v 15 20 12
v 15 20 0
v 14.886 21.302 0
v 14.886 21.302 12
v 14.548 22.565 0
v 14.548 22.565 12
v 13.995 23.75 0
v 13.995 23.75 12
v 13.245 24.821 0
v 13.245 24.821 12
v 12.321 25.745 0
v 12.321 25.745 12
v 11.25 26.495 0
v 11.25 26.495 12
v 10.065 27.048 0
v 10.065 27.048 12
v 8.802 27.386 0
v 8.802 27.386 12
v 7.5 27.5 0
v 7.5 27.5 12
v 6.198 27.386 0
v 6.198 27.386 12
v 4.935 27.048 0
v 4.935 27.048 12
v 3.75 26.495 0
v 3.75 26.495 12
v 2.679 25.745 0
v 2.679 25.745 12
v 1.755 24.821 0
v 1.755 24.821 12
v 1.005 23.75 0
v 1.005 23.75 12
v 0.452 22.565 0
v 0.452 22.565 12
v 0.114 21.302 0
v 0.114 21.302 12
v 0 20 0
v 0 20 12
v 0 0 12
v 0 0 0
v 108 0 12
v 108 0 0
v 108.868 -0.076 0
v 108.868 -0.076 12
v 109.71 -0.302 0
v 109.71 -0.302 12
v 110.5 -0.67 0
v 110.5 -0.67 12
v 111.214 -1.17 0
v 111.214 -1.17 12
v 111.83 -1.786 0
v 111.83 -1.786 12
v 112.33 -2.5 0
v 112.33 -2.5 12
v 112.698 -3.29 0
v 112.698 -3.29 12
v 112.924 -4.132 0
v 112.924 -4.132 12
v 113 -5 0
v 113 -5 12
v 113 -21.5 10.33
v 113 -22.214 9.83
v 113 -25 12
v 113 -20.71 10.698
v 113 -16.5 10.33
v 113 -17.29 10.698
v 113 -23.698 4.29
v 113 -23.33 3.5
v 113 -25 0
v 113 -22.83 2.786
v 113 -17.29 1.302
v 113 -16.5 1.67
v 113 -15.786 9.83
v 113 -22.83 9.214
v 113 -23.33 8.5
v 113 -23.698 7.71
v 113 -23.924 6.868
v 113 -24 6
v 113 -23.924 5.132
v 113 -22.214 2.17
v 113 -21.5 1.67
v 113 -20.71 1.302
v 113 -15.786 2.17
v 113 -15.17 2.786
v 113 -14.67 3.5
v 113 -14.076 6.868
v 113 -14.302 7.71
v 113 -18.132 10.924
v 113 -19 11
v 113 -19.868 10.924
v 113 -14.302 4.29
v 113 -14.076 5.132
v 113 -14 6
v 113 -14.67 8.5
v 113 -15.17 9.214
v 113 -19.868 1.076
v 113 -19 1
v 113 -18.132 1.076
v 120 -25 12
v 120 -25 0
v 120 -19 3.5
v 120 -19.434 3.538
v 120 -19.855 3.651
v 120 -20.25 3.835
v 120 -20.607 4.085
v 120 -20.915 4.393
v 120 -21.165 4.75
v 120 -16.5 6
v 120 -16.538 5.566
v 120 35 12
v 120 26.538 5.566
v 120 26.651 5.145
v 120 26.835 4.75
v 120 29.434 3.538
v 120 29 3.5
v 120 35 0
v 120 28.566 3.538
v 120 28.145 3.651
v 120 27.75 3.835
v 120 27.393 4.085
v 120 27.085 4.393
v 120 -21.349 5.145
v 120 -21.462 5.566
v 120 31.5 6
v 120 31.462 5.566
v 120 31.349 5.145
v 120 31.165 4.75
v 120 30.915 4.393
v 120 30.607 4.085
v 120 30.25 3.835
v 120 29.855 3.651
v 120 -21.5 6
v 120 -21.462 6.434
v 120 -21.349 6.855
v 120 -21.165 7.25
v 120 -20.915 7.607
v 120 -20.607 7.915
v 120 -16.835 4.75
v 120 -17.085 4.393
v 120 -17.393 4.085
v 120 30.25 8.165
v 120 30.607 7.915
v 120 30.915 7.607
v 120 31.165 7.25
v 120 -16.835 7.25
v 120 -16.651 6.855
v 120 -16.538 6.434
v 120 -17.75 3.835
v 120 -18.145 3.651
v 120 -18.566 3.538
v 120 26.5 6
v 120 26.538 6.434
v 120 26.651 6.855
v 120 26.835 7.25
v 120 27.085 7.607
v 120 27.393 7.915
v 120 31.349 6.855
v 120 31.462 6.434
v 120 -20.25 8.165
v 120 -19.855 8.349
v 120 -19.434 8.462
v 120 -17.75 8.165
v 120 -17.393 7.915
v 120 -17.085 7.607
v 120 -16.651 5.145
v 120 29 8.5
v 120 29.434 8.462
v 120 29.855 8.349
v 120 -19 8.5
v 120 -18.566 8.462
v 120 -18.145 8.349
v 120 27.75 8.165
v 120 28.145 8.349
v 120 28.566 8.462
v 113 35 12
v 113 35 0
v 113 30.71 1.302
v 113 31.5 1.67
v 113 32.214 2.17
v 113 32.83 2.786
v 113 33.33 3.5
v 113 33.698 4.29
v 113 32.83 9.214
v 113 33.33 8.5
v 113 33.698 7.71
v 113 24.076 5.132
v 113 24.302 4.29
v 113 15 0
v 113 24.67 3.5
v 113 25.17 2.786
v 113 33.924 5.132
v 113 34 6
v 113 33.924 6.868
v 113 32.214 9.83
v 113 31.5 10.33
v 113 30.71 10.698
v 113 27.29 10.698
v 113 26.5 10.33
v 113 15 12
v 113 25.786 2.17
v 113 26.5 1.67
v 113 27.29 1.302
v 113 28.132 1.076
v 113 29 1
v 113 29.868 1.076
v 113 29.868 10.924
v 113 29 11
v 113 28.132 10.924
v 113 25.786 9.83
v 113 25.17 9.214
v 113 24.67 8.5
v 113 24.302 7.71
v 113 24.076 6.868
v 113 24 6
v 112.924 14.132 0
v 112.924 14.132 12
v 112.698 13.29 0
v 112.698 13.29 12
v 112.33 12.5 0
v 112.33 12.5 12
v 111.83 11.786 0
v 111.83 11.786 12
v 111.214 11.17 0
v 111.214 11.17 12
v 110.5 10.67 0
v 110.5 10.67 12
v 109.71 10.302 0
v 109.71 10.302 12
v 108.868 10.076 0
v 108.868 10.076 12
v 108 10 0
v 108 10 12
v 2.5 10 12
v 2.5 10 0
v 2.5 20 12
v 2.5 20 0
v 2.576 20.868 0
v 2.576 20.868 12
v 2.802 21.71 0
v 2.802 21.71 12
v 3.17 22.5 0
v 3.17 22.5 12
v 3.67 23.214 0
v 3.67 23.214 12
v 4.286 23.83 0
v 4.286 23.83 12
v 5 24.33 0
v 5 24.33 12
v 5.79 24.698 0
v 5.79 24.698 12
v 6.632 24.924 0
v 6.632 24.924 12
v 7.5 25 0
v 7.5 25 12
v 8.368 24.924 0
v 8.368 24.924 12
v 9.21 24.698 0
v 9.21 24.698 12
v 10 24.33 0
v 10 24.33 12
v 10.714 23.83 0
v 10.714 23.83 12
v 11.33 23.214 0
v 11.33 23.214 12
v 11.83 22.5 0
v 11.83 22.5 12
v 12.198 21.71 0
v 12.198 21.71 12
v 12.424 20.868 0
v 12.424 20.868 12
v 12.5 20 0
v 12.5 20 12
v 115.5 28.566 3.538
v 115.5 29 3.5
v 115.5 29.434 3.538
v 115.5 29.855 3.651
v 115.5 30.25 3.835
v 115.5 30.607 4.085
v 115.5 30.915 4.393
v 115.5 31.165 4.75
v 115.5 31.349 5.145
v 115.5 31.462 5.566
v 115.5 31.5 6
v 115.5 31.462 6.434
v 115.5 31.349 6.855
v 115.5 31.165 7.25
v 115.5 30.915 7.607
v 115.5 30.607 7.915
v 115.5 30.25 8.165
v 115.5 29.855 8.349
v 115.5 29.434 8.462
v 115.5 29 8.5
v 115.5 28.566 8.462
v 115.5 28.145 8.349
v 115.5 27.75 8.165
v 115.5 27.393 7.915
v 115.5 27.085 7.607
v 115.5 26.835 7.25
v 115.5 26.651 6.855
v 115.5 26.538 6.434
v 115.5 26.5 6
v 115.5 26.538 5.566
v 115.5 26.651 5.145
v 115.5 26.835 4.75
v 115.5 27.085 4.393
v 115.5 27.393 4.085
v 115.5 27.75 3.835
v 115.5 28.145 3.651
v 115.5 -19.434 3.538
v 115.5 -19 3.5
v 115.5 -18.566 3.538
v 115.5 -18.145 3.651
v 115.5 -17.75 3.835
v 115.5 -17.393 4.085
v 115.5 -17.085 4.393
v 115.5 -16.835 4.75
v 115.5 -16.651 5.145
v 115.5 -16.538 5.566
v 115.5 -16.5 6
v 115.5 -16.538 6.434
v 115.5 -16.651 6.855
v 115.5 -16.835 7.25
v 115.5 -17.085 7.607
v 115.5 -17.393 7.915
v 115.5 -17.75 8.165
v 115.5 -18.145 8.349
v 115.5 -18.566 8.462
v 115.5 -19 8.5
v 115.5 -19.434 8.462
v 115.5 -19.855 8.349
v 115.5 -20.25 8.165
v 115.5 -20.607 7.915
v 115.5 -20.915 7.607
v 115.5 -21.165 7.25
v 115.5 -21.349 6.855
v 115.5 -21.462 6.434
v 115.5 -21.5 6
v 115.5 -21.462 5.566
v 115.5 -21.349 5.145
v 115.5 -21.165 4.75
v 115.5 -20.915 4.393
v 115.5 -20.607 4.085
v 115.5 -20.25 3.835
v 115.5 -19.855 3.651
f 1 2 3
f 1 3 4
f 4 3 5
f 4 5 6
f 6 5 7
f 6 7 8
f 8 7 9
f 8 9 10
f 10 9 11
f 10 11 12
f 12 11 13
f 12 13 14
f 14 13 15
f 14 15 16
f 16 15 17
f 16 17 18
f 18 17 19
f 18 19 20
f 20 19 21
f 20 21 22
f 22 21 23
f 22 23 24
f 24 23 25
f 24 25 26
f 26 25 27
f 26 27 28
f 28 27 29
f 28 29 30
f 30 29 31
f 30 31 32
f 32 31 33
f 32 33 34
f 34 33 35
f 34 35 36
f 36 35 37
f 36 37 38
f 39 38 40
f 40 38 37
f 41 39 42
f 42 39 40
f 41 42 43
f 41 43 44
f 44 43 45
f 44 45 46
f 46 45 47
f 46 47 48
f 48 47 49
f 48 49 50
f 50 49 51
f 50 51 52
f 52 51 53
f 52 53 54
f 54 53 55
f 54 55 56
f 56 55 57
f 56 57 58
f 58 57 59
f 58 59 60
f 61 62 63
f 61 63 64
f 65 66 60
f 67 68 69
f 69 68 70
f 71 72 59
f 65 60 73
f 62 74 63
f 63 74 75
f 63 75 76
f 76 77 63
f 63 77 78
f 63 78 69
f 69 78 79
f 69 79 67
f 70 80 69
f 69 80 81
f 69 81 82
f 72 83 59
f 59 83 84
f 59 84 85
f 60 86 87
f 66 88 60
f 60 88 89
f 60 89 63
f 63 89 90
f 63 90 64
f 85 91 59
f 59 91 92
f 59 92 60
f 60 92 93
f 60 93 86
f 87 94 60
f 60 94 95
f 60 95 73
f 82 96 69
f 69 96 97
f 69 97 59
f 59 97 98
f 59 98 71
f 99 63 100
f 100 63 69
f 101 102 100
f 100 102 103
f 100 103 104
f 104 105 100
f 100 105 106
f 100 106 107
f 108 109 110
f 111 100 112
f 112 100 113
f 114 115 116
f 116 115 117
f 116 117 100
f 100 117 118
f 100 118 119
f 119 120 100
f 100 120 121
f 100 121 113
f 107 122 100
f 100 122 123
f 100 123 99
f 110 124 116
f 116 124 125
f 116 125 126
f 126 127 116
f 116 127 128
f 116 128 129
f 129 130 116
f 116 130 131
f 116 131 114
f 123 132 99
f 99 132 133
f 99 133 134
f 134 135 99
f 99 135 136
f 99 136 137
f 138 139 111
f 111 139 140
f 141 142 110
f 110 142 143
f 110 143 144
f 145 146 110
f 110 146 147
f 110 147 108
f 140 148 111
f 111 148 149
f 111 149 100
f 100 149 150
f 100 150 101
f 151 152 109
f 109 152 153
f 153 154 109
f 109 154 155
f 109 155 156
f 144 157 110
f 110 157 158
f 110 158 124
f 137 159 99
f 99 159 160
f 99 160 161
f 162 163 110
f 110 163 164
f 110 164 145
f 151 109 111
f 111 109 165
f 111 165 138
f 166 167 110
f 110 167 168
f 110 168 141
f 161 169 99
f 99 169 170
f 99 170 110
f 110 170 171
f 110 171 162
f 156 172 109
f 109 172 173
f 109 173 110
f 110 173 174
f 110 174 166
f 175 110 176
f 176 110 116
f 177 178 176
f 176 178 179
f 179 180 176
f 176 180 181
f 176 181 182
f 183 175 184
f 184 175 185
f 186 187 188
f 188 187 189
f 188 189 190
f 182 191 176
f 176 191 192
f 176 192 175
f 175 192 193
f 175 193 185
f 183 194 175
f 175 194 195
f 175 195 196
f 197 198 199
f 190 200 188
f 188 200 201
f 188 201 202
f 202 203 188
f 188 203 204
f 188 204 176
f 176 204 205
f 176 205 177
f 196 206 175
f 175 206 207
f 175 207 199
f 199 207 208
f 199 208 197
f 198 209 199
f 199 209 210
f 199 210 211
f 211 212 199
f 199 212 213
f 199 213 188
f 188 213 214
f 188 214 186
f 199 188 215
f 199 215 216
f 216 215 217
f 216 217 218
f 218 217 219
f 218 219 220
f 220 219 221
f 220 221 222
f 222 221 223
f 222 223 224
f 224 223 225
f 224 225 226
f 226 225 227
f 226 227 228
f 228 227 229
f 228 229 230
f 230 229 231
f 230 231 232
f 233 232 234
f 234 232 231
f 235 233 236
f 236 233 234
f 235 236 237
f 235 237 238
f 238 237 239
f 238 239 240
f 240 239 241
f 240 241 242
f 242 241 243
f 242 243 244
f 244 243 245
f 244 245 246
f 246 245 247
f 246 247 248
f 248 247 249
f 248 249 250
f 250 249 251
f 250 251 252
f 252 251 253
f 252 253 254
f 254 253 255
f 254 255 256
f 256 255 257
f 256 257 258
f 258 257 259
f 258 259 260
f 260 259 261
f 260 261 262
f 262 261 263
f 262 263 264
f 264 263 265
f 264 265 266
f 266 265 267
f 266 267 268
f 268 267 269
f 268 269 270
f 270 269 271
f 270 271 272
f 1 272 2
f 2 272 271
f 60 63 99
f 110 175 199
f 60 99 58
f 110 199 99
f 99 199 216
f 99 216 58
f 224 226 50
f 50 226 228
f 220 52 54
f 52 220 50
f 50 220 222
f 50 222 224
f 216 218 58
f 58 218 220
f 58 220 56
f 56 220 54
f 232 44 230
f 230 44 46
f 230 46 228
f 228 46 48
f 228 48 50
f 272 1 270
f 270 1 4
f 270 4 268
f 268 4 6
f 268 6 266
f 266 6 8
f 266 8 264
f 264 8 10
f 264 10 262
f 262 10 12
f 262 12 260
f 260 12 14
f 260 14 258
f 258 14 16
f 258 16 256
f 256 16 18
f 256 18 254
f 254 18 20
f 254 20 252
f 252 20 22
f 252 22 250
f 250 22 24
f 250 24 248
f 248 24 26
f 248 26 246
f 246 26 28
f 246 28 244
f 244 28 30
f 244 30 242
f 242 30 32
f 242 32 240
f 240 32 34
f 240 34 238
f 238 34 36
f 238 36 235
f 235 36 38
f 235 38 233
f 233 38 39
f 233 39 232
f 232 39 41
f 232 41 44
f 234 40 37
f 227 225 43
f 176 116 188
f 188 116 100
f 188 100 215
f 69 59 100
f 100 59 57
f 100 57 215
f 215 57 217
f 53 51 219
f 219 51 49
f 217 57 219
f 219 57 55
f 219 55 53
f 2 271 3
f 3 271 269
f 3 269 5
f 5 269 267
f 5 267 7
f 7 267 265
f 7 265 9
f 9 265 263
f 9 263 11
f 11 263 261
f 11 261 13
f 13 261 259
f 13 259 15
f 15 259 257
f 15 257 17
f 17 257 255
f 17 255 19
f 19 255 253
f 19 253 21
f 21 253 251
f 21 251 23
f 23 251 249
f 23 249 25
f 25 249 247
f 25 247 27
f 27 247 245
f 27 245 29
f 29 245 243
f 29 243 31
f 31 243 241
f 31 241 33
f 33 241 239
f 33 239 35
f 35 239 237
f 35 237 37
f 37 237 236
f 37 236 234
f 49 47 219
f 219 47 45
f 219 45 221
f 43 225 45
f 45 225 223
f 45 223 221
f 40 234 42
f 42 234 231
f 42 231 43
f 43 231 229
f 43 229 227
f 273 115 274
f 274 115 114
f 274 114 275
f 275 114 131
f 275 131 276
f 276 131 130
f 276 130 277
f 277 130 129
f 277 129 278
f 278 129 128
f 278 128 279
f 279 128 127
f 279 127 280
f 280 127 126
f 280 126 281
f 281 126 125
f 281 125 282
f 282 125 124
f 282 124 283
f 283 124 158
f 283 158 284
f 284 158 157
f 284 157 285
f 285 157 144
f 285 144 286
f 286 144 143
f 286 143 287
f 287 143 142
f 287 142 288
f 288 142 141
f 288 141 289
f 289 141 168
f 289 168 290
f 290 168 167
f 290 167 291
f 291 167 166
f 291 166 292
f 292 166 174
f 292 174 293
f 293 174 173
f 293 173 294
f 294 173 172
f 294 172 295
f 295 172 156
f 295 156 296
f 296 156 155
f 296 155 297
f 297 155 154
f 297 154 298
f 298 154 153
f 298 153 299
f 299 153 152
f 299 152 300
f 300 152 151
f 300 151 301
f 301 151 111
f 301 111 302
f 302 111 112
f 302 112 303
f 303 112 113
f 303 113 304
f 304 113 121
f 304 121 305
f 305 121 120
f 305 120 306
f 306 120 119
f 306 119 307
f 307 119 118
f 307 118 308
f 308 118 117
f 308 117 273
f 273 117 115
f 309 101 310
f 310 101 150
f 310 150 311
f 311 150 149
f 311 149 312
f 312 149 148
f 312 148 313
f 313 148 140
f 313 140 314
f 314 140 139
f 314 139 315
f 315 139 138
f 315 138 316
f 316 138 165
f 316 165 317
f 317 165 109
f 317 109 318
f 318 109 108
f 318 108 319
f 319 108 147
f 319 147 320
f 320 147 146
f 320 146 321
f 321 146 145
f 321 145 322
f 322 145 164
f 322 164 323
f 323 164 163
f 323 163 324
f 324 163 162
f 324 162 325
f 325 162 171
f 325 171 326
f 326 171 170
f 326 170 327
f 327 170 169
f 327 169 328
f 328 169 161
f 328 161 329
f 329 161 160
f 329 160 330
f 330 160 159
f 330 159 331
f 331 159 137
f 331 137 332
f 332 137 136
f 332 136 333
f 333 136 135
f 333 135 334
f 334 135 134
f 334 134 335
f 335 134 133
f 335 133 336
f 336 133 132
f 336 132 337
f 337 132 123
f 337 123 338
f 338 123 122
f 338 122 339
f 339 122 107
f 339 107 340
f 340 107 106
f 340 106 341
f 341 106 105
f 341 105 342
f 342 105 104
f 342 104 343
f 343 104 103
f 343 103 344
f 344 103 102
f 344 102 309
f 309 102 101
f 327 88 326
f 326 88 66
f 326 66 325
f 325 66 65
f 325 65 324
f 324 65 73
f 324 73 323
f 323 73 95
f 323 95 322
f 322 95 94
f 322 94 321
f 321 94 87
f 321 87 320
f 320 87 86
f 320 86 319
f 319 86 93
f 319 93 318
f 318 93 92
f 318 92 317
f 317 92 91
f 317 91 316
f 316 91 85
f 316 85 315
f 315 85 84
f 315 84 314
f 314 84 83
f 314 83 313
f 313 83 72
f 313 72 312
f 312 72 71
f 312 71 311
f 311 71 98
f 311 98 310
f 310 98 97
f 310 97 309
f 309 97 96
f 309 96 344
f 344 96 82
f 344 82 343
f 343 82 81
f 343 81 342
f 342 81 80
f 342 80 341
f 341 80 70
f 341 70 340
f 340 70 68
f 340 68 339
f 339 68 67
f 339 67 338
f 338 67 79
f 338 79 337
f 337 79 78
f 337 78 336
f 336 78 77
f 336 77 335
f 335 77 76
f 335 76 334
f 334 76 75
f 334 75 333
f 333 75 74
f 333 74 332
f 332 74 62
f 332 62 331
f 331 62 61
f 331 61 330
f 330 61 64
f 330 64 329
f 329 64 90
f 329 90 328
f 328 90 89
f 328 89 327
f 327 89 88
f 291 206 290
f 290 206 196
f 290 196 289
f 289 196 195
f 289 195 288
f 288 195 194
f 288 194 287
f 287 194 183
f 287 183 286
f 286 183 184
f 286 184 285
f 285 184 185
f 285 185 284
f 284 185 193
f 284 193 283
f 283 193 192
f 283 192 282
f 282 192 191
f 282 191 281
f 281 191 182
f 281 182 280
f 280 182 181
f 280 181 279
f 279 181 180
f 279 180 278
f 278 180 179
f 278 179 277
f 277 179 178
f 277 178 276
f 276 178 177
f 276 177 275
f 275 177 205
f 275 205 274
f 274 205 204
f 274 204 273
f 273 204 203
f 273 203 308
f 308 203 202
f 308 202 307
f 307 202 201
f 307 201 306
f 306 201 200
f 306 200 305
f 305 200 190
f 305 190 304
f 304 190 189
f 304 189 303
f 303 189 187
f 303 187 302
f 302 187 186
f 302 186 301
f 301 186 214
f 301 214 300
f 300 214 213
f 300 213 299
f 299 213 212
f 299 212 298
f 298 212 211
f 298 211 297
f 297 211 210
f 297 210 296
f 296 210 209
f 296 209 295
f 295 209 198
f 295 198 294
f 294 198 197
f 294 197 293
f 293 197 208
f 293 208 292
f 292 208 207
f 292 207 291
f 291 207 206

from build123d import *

# Parameters (mm, degrees)
BOSS_EXTRUDE1_DEPTH = 12
CUT_EXTRUDE2_REACH  = 122
SKETCH3_R           = 2.5
CHAMFER2_SIZE       = 2.5


with BuildPart() as part:
    # Sketch1 → Boss-Extrude1 (new body)
    with BuildSketch(Plane.XY):
        with BuildLine():
            Line((120, 35), (120, 5))
            Line((120, 5), (120, -25))
            Line((120, -25), (113, -25))
            Line((113, -25), (113, -5))
            ThreePointArc((113, -5), (111.535533906, -1.464466094), (108, 0))
            Line((108, 0), (0, 0))
            Line((0, 0), (0, 20))
            ThreePointArc((0, 20), (7.5, 27.5), (15, 20))
            Line((15, 20), (12.5, 20))
            ThreePointArc((12.5, 20), (7.5, 25), (2.5, 20))
            Line((2.5, 20), (2.5, 10))
            Line((2.5, 10), (108, 10))
            ThreePointArc((108, 10), (111.535533906, 11.464466094), (113, 15))
            Line((113, 15), (113, 35))
            Line((113, 35), (120, 35))
        make_face()
    extrude(amount=BOSS_EXTRUDE1_DEPTH)

    # Sketch3 → Cut-Extrude2 (cut, up to next)
    with BuildSketch(Plane(origin=(120, 0, 0), x_dir=(0, 0, -1), z_dir=(1, 0, 0)), mode=Mode.PRIVATE) as cut_extrude2_sk1:
        with Locations((-6, 29)):
            Circle(SKETCH3_R)
    cut_extrude2_tool1 = extrude(cut_extrude2_sk1.sketch, amount=-CUT_EXTRUDE2_REACH, mode=Mode.PRIVATE) & part.part
    add(cut_extrude2_tool1.solids().sort_by_distance((120, 29, 6))[0], mode=Mode.SUBTRACT)
    # Sketch3 → Cut-Extrude2 (cut, up to next)
    with BuildSketch(Plane(origin=(120, 0, 0), x_dir=(0, 0, -1), z_dir=(1, 0, 0)), mode=Mode.PRIVATE) as cut_extrude2_sk2:
        with Locations((-6, -19)):
            Circle(SKETCH3_R)
    cut_extrude2_tool2 = extrude(cut_extrude2_sk2.sketch, amount=-CUT_EXTRUDE2_REACH, mode=Mode.PRIVATE) & part.part
    add(cut_extrude2_tool2.solids().sort_by_distance((120, -19, 6))[0], mode=Mode.SUBTRACT)

    # Chamfer2
    chamfer2_edges = [part.edges().sort_by_distance(p)[0] for p in [
        (113, 29, 8.5),
        (113, -19, 8.5),
    ]]
    chamfer(chamfer2_edges, length=CHAMFER2_SIZE)


solid = part.part
